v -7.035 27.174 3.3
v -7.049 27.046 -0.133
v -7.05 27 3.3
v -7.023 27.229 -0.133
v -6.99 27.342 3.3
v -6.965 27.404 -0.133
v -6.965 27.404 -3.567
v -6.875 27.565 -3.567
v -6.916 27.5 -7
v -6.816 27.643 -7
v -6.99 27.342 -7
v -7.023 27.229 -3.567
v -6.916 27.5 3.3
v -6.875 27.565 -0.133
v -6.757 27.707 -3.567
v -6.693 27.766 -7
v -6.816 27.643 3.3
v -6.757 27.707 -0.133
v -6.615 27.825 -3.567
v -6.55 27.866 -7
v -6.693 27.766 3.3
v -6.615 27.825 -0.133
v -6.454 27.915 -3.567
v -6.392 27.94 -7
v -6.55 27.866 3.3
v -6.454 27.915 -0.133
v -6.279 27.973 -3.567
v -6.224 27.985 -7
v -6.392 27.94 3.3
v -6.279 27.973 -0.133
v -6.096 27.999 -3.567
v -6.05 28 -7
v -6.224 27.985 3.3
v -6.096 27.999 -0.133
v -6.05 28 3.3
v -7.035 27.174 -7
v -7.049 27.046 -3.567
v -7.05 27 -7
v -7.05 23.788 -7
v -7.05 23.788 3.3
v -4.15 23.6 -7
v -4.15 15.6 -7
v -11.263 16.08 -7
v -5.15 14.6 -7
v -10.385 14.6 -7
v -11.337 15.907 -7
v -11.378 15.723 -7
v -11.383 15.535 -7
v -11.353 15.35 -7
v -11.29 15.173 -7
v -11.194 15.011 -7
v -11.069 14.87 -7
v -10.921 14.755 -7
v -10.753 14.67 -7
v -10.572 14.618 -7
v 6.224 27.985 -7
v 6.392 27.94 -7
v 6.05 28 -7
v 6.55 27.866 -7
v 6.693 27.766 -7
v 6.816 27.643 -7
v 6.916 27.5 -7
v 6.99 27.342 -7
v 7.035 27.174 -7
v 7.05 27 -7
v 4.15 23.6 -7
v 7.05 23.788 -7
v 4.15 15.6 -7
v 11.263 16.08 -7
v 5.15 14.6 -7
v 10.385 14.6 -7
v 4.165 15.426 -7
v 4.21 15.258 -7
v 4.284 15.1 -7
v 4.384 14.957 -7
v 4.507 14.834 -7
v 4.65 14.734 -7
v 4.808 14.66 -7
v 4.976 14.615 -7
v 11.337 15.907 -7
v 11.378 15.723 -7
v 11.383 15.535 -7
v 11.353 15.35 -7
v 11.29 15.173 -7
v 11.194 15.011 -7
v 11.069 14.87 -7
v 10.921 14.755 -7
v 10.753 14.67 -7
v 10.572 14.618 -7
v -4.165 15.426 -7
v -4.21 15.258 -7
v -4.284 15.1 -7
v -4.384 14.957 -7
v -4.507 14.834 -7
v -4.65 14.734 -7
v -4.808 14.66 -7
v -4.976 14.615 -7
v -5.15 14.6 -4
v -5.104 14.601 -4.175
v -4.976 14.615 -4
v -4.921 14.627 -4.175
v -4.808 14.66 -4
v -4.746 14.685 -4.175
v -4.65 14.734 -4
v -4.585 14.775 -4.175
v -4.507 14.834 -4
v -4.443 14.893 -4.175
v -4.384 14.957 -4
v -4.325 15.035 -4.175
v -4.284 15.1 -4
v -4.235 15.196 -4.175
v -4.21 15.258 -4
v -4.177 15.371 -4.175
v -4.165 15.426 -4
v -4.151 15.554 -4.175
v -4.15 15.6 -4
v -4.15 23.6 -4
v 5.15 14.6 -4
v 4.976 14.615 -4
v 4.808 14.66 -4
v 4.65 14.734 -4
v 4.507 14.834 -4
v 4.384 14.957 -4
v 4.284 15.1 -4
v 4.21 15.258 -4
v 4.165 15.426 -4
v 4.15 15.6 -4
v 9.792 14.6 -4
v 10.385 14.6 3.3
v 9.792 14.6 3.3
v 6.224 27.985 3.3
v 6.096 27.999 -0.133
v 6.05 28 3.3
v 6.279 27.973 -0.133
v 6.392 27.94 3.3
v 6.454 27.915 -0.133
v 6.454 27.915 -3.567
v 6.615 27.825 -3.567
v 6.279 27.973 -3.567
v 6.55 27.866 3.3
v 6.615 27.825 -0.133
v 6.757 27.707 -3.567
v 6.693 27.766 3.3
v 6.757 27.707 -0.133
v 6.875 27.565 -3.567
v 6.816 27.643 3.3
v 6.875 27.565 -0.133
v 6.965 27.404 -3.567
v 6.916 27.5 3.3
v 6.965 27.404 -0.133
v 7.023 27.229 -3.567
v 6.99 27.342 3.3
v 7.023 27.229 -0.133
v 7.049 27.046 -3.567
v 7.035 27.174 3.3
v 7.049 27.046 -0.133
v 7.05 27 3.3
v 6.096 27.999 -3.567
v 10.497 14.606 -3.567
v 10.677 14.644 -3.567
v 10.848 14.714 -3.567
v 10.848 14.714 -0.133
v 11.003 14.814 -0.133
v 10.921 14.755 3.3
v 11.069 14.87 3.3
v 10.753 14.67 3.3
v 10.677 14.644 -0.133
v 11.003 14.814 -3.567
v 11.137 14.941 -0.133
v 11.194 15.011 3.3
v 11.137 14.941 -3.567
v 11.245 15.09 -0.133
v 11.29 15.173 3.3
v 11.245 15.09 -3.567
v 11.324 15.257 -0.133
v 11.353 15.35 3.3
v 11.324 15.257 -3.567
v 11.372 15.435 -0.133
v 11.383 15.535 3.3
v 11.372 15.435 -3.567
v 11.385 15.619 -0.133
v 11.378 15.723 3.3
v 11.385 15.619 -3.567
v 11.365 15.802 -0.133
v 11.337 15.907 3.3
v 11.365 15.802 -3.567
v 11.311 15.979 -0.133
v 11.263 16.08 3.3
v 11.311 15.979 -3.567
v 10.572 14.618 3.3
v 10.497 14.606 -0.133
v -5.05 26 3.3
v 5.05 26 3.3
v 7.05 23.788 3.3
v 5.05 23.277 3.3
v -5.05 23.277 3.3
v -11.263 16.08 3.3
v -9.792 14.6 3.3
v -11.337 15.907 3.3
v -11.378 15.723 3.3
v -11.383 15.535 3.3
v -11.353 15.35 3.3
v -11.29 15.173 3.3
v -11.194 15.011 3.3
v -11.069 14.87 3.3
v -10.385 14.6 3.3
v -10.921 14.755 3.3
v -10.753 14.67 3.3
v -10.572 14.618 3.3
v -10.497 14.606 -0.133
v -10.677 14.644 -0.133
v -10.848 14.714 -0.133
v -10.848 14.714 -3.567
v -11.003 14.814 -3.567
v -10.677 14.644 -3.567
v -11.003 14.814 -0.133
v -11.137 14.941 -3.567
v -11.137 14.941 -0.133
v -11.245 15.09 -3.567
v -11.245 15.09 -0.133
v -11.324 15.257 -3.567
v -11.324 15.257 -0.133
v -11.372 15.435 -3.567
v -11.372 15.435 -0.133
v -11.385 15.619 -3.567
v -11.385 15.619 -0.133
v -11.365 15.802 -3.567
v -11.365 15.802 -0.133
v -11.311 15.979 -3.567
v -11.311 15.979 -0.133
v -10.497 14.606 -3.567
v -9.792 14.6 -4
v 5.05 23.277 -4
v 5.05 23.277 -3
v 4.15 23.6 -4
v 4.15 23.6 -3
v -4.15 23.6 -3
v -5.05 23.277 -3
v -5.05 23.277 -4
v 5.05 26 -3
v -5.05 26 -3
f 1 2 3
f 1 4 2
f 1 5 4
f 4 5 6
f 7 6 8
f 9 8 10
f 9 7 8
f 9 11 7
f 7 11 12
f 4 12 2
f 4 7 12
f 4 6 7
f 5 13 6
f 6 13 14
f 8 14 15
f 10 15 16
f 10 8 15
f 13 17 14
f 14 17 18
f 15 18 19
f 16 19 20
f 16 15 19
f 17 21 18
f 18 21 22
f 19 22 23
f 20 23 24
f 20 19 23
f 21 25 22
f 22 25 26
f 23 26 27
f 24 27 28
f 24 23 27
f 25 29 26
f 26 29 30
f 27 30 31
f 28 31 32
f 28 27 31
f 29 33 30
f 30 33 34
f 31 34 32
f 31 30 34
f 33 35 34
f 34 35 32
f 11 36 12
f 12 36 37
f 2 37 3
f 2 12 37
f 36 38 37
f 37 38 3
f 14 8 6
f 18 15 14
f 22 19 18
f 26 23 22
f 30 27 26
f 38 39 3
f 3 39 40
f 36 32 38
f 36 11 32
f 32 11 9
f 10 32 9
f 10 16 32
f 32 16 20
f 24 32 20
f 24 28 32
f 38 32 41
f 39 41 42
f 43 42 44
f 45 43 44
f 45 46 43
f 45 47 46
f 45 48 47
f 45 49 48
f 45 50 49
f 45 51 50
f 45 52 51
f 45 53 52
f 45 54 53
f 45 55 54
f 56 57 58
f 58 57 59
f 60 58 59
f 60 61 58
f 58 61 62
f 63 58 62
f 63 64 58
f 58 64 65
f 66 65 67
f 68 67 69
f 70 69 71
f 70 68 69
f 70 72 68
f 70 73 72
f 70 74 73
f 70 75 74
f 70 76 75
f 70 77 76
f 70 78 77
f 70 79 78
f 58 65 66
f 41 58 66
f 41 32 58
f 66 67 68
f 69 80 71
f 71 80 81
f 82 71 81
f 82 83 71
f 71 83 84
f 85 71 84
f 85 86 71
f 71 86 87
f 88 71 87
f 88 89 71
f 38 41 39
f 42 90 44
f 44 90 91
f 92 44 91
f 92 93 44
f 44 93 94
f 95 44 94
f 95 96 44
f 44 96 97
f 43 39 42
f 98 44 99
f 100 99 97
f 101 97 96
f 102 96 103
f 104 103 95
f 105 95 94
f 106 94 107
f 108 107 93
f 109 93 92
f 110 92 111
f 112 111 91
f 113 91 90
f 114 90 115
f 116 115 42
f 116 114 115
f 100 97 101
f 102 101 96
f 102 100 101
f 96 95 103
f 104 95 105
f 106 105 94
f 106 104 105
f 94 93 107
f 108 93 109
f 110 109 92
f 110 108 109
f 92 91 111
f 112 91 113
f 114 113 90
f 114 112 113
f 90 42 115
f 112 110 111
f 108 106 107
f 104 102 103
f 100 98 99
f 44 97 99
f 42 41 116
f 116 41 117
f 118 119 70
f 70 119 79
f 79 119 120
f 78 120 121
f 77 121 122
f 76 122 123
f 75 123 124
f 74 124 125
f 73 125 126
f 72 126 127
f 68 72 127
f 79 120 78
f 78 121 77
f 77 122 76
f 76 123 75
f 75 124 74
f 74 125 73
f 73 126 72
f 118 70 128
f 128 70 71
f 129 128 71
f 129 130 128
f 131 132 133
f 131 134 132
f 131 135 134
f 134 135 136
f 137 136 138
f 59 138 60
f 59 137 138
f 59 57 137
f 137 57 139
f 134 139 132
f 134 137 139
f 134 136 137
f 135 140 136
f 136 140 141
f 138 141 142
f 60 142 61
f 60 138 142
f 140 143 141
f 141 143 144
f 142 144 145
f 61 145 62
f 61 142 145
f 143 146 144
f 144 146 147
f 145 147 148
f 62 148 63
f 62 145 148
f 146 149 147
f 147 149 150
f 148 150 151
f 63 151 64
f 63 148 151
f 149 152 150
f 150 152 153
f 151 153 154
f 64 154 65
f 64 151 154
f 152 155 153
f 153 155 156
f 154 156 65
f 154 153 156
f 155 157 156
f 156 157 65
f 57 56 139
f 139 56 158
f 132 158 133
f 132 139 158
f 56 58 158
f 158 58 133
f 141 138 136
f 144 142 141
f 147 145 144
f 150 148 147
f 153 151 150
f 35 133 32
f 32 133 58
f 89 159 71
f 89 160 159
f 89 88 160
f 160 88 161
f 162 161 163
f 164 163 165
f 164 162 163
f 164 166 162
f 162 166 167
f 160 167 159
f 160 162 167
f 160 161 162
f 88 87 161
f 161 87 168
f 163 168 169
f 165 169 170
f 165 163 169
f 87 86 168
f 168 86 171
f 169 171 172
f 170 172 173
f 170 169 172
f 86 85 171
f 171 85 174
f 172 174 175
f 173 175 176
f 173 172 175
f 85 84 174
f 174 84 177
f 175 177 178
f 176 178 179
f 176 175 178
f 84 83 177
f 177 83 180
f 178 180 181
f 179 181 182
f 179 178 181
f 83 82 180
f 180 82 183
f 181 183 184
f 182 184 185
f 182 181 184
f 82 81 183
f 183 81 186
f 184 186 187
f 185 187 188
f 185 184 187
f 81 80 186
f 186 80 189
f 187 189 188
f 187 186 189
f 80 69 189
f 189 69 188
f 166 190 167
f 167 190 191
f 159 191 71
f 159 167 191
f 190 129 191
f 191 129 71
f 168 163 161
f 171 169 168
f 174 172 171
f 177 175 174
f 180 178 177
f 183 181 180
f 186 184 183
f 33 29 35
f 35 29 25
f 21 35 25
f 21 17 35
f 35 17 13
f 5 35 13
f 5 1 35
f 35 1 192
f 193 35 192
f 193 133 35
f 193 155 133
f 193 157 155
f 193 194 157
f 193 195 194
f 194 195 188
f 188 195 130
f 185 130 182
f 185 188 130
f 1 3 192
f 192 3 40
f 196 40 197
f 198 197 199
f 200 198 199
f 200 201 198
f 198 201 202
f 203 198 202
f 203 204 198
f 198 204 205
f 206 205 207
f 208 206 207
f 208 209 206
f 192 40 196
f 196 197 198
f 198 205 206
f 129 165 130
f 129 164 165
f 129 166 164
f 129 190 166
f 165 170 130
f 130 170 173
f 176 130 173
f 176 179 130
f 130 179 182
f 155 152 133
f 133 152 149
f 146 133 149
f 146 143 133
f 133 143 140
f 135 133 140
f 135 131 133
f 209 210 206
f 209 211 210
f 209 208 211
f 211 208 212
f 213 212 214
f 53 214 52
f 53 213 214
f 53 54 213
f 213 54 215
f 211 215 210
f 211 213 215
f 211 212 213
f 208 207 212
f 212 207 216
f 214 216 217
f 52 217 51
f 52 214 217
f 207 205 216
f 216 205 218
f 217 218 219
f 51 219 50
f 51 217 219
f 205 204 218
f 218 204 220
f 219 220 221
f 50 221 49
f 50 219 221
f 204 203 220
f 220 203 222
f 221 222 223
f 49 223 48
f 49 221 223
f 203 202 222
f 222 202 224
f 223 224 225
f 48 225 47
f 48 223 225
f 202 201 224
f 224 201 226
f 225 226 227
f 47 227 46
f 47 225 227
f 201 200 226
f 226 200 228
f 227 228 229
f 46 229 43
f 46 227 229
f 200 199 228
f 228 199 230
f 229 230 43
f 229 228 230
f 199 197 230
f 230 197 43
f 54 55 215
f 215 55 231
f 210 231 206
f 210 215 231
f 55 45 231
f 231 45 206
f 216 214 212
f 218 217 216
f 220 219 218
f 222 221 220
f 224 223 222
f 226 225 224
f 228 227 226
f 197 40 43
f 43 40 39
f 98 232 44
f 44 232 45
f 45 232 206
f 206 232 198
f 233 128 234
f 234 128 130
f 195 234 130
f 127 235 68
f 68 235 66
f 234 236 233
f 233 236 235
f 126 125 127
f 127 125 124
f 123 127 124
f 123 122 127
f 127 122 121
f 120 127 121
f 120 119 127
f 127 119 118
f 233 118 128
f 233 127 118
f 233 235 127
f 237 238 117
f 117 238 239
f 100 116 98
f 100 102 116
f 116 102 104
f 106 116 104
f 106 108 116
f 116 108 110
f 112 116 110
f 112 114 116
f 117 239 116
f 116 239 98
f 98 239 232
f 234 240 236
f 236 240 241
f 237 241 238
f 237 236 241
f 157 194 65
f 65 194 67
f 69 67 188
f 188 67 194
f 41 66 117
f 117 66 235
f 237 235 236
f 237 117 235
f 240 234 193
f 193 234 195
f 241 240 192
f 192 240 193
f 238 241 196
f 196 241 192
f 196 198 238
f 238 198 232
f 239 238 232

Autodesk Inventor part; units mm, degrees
ref_plane "YZ Plane" through (0, 0, 0) normal (1, 0, 0) x (0, 1, 0)
ref_plane "XZ Plane" through (0, 0, 0) normal (0, 1, 0) x (-1, 0, 0)
ref_plane "XY Plane" through (0, 0, 0) normal (0, 0, 1) x (1, 0, 0)
sketch "Sketch1" plane through (0, 0, 0) normal (0, 0, 1) x (1, 0, 0)
  line L0 (-5, -2.5) -> (5, -2.5) construction
  line L1 (5, -2.5) -> (12.675, 0) construction
  line L2 (-5, -2.5) -> (-12.675, 0)
  line L3 (12.675, 0) -> (-12.675, 0) construction
  line L4 (12.675, 0) -> (12.675, 8.7) construction
  line L5 (-12.675, 0) -> (-12.675, 8.7)
  line L6 (-12.675, 8.7) -> (-4.75, 23.2)
  line L7 (-4.75, 23.2) -> (-4.75, 25.7)
  line L8 (-4.75, 25.7) -> (4.75, 25.7) construction
  line L9 (4.75, 25.7) -> (4.75, 23.2) construction
  line L10 (4.75, 23.2) -> (12.675, 8.7) construction
  line L11 (0, -8.56) -> (0, 31.76) projected
  line L12 (0, 25.7) -> (0, -2.5)
  circle A0 centre (-10.8, 4.25) radius 1.25
  line L13 (-10.8, 4.25) -> (0, 4.25) construction
  line L14 (-4.75, 25.7) -> (0, 25.7)
  line L15 (-5, -2.5) -> (0, -2.5)
  line L16 (-5.05, 23.2766) -> (-12.975, 8.7766)
  line L17 (-12.975, 8.7766) -> (-12.975, -0.2178)
  line L18 (-12.975, -0.2178) -> (-5.0476, -2.8)
  line L19 (-5.0476, -2.8) -> (0.3, -2.8) construction
  line L20 (0.3, -2.8) -> (0.3, 26) construction
  line L21 (0.3, 26) -> (-5.05, 26) construction
  line L22 (-5.05, 26) -> (-5.05, 23.2766)
  line L23 (0, -2.5) -> (0, -2.8)
  line L24 (0, 25.7) -> (0, 26)
  line L25 (0, -2.8) -> (-5.0476, -2.8)
  line L26 (0, 26) -> (-5.05, 26)
  point P0 (0, 0)
  point P1 (0, 0)
  dimension "d0" = 10
  dimension "d1" = 25.35
  dimension "d2" = 2.5
  dimension "d3" = 8.7
  dimension "d4" = 28.2
  dimension "d6" = 2.5
  dimension "d7" = 9.5
  dimension "d42" = 2.5
  dimension "d43" = 10.8
  dimension "d44" = 6.75
  dimension "d53" = 0.3
sketch "Sketch8" plane through (0, 0, 0) normal (0, 0, 1) x (1, 0, 0)
  line L0 (-20, 30) -> (20, 30)
  line L1 (20, 30) -> (20, -10)
  line L2 (20, -10) -> (-20, -10)
  line L3 (-20, -10) -> (-20, 30)
  point P0 (0, 0)
  point P1 (0, -10)
  dimension "d45" = 40
  dimension "d46" = 10
extrude "MainBlock" add sketch "Sketch8" against normal blind 7
extrude "CartridgeCutout" cut sketch "Sketch1" against normal blind 3
sketch "Sketch10" plane through (-10.8, 4.25, 0) normal (0, 0, 1) x (1, 0, 0)
  circle A0 centre (0, 0) radius 1.25 projected
  circle A1 centre (0, 0) radius 1.45
  point P0 (10.8, -4.25)
  dimension "d56" = 0.2
extrude "PinHole" cut sketch "Sketch10" against normal through all contours A0 | A1
mirror "Mirror3" about plane through (0, 26, 0) normal (-1, 0, 0) of "CartridgeCutout", "PinHole"
sketch "Sketch12" plane through (0, 0, -3) normal (0, 0, 1) x (1, 0, 0)
  circle A0 centre (10.8, 4.25) radius 1.45 projected
  circle A1 centre (-10.8, 4.25) radius 1.45 projected
  line L0 (5.05, 26) -> (-5.05, 26) projected
  line L1 (-5.05, 23.2766) -> (-5.05, 26) projected
  line L2 (-12.975, 8.7766) -> (-5.05, 23.2766) projected
  line L3 (-12.975, -0.2178) -> (-12.975, 8.7766) projected
  line L4 (-5.0476, -2.8) -> (-12.975, -0.2178) projected
  line L5 (5.0476, -2.8) -> (-5.0476, -2.8) projected
  line L6 (5.0476, -2.8) -> (12.975, -0.2178) projected
  line L7 (12.975, -0.2178) -> (12.975, 8.7766) projected
  line L8 (12.975, 8.7766) -> (5.05, 23.2766) projected
  line L9 (5.05, 23.2766) -> (5.05, 26) projected
  line L10 (-4.15, 23.6) -> (4.15, 23.6)
  line L11 (4.15, 23.6) -> (4.15, -1.4)
  line L12 (4.15, -1.4) -> (-4.15, -1.4)
  line L13 (-4.15, -1.4) -> (-4.15, 23.6)
  point P0 (0, 0)
  point P1 (0, -1.4)
  dimension "d59" = 8.3
  dimension "d60" = 25
  dimension "d61" = 1.4
extrude "CentreHole" cut sketch "Sketch12" against normal through all contours L10 L11 L12 L13
sketch "Sketch13" plane through (0, 0, 0) normal (0, 0, 1) x (1, 0, 0)
  line L0 (-5.05, 26) -> (5.05, 26) projected
  line L1 (5.05, 26) -> (5.05, 23.2766) projected
  line L2 (5.05, 23.2766) -> (12.975, 8.7766) projected
  line L3 (12.975, 8.7766) -> (12.975, -0.2178) projected
  line L4 (12.975, -0.2178) -> (5.0476, -2.8) projected
  line L5 (5.0476, -2.8) -> (-5.0476, -2.8) projected
  line L6 (-5.0476, -2.8) -> (-12.975, -0.2178) projected
  line L7 (-12.975, -0.2178) -> (-12.975, 8.7766) projected
  line L8 (-12.975, 8.7766) -> (-5.05, 23.2766) projected
  line L9 (-5.05, 23.2766) -> (-5.05, 26) projected
  line L10 (-20, 30) -> (20, 30) projected
  line L11 (-20, -10) -> (-20, 30) projected
  line L12 (20, -10) -> (-20, -10) projected
  line L13 (20, 30) -> (20, -10) projected
  line L14 (-14.975, 9.2875) -> (-14.975, -1.6698)
  line L15 (-14.975, -1.6698) -> (-5.3652, -4.8)
  line L16 (-5.3652, -4.8) -> (5.3652, -4.8)
  line L17 (5.3652, -4.8) -> (14.975, -1.6698)
  line L18 (14.975, -1.6698) -> (14.975, 9.2875)
  line L19 (14.975, 9.2875) -> (7.05, 23.7875)
  line L20 (7.05, 23.7875) -> (7.05, 28)
  line L21 (7.05, 28) -> (-7.05, 28)
  line L22 (-7.05, 28) -> (-7.05, 23.7875)
  line L23 (-7.05, 23.7875) -> (-14.975, 9.2875)
  point P0 (0, 0)
  dimension "d65" = 2
extrude "OutlineCut" cut sketch "Sketch13" against normal through all contours L10 L13 L12 L11
sketch "Sketch14" plane through (0, 0, -3) normal (0, 0, 1) x (1, 0, 0)
  line L0 (-4.15, -1.4) -> (-4.15, 23.6) projected
  line L1 (-4.15, 23.6) -> (4.15, 23.6) projected
  line L2 (4.15, 23.6) -> (4.15, -1.4) projected
  line L3 (4.15, -1.4) -> (-4.15, -1.4) construction
  circle A0 centre (10.8, 4.25) radius 1.45 construction
  circle A1 centre (-10.8, 4.25) radius 1.45 construction
  line L4 (5.05, 26) -> (-5.05, 26) projected
  line L5 (-5.05, 23.2766) -> (-5.05, 26) projected
  line L6 (-12.975, 8.7766) -> (-5.05, 23.2766) projected
  line L7 (-12.975, -0.2178) -> (-12.975, 8.7766) construction
  line L8 (-5.0476, -2.8) -> (-12.975, -0.2178) construction
  line L9 (5.0476, -2.8) -> (-5.0476, -2.8) construction
  line L10 (5.0476, -2.8) -> (12.975, -0.2178) construction
  line L11 (12.975, -0.2178) -> (12.975, 8.7766) construction
  line L12 (12.975, 8.7766) -> (5.05, 23.2766) projected
  line L13 (5.05, 23.2766) -> (5.05, 26) projected
  line L14 (-9.7922, 14.6) -> (-4.15, 14.6)
  line L15 (-12.975, 8.7766) -> (-5.05, 23.2766) projected
  line L16 (-4.15, 23.6) -> (-5.05, 23.2766)
  line L17 (0, -18) -> (0, 38) projected
  line L18 (-4.15, 23.6) -> (-4.15, 14.6)
  line L19 (-4.15, -1.4) -> (-4.15, 23.6) projected
  line L20 (-5.05, 23.2766) -> (-9.7922, 14.6)
  line L21 (-12.975, 8.7766) -> (-5.05, 23.2766) projected
  line L22 (9.7922, 14.6) -> (4.15, 14.6)
  line L23 (4.15, 23.6) -> (5.05, 23.2766)
  line L24 (4.15, 23.6) -> (4.15, 14.6)
  line L25 (5.05, 23.2766) -> (9.7922, 14.6)
  point P0 (0, 0)
  dimension "d70" = 9
extrude "AlignmentGooveCut" cut sketch "Sketch14" against normal blind 1 contours L14 L6 L16 L0 | L23 L12 L22 L2
sketch "Sketch16" plane through (0, 0, 0) normal (0, 0, 1) x (1, 0, 0)
  line L0 (-8.5, 12.6) -> (8.5, 12.6)
  line L1 (8.5, 12.6) -> (8.5, -7.4)
  line L2 (8.5, -7.4) -> (-8.5, -7.4)
  line L3 (-8.5, -7.4) -> (-8.5, 12.6)
  line L4 (4.15, -1.4) -> (-4.15, -1.4) projected
  point P0 (0, 0)
  point P1 (0, -7.4)
  dimension "d73" = 17
  dimension "d74" = 20
  dimension "d75" = 14
extrude "CircuitBoardCut" cut sketch "Sketch16" against normal blind 6
sketch "Sketch18" plane through (0, 0, -6) normal (0, 0, 1) x (1, 0, 0)
  line L0 (-4.15, 12.6) -> (-4.15, -1.4) projected
  line L1 (-4.15, -1.4) -> (4.15, -1.4) projected
  line L2 (4.15, -1.4) -> (4.15, 12.6) projected
  line L3 (-4.15, 12.6) -> (4.15, 12.6)
  line L4 (-4.15, 23.6) -> (-4.15, -1.4) projected
  point P0 (0, 0)
extrude "CircuitBoardFillIn" add sketch "Sketch18" against normal up to surface (1 mm away)
sketch "Sketch19" plane through (0, 0, 0) normal (0, 0, 1) x (1, 0, 0)
  line L0 (8.5, -1.6754) -> (8.5, -3.7789) projected
  line L1 (8.5, -3.7789) -> (14.975, -1.6698) projected
  line L2 (14.975, -1.6698) -> (14.975, 9.2875) projected
  line L3 (14.975, 9.2875) -> (7.05, 23.7875) projected
  line L4 (7.05, 23.7875) -> (7.05, 28) projected
  line L5 (-7.05, 28) -> (-7.05, 23.7875) projected
  line L6 (-7.05, 23.7875) -> (-14.975, 9.2875) projected
  line L7 (-14.975, 9.2875) -> (-14.975, -1.6698) projected
  line L8 (-14.975, -1.6698) -> (-8.5, -3.7789) projected
  line L9 (-8.5, -3.7789) -> (-8.5, -1.6754) projected
  line L10 (-8.5, -1.6754) -> (-12.975, -0.2178) projected
  line L11 (-12.975, -0.2178) -> (-12.975, 8.7766) projected
  line L12 (-12.975, 8.7766) -> (-5.05, 23.2766) projected
  line L13 (-5.05, 23.2766) -> (-5.05, 26) projected
  line L14 (-5.05, 26) -> (5.05, 26) projected
  line L15 (5.05, 26) -> (5.05, 23.2766) projected
  line L16 (5.05, 23.2766) -> (12.975, 8.7766) projected
  line L17 (12.975, 8.7766) -> (12.975, -0.2178) projected
  line L18 (12.975, -0.2178) -> (8.5, -1.6754) projected
  line L19 (7.05, 28) -> (-7.05, 28) projected
  point P0 (0, 0)
extrude "TopHeightAdjustment" add sketch "Sketch19" along normal blind 0.3
sketch "Sketch20" plane through (0, 0, 0.3) normal (0, 0, 1) x (1, 0, 0)
  line L0 (-20, -14.6) -> (20, -14.6)
  line L1 (20, -14.6) -> (20, 14.6)
  line L2 (20, 14.6) -> (-20, 14.6)
  line L3 (-20, 14.6) -> (-20, -14.6)
  line L4 (-4.15, 14.6) -> (-9.7922, 14.6) projected
  point P0 (0, 0)
  point P1 (0, 14.6)
  point P2 (-20, 0)
  dimension "d89" = 40
extrude "Extrusion19" cut sketch "Sketch20" against normal through all
sketch "Sketch21" plane through (0, 0, 0.3) normal (0, 0, 1) x (1, 0, 0)
  line L0 (-12.0715, 14.6) -> (-9.7922, 14.6) projected
  line L1 (-9.7922, 14.6) -> (-5.05, 23.2766) projected
  line L2 (-5.05, 23.2766) -> (-5.05, 26) projected
  line L3 (-5.05, 26) -> (5.05, 26) projected
  line L4 (5.05, 26) -> (5.05, 23.2766) projected
  line L5 (5.05, 23.2766) -> (9.7922, 14.6) projected
  line L6 (9.7922, 14.6) -> (12.0715, 14.6) projected
  line L7 (12.0715, 14.6) -> (7.05, 23.7875) projected
  line L8 (7.05, 23.7875) -> (7.05, 28) projected
  line L9 (7.05, 28) -> (-7.05, 28) projected
  line L10 (-7.05, 28) -> (-7.05, 23.7875) projected
  line L11 (-7.05, 23.7875) -> (-12.0715, 14.6) projected
  point P0 (0, 0)
extrude "Extrusion20" add sketch "Sketch21" along normal blind 3
fillet "Fillet4" radius 1 6 edges at (-12.0715, 14.6, -1.85) (12.0715, 14.6, -1.85) (7.05, 28, -1.85) (4.15, 14.6, -5.5) (-4.15, 14.6, -5.5) (-7.05, 28, -1.85)
properties part number "TestShroud"
